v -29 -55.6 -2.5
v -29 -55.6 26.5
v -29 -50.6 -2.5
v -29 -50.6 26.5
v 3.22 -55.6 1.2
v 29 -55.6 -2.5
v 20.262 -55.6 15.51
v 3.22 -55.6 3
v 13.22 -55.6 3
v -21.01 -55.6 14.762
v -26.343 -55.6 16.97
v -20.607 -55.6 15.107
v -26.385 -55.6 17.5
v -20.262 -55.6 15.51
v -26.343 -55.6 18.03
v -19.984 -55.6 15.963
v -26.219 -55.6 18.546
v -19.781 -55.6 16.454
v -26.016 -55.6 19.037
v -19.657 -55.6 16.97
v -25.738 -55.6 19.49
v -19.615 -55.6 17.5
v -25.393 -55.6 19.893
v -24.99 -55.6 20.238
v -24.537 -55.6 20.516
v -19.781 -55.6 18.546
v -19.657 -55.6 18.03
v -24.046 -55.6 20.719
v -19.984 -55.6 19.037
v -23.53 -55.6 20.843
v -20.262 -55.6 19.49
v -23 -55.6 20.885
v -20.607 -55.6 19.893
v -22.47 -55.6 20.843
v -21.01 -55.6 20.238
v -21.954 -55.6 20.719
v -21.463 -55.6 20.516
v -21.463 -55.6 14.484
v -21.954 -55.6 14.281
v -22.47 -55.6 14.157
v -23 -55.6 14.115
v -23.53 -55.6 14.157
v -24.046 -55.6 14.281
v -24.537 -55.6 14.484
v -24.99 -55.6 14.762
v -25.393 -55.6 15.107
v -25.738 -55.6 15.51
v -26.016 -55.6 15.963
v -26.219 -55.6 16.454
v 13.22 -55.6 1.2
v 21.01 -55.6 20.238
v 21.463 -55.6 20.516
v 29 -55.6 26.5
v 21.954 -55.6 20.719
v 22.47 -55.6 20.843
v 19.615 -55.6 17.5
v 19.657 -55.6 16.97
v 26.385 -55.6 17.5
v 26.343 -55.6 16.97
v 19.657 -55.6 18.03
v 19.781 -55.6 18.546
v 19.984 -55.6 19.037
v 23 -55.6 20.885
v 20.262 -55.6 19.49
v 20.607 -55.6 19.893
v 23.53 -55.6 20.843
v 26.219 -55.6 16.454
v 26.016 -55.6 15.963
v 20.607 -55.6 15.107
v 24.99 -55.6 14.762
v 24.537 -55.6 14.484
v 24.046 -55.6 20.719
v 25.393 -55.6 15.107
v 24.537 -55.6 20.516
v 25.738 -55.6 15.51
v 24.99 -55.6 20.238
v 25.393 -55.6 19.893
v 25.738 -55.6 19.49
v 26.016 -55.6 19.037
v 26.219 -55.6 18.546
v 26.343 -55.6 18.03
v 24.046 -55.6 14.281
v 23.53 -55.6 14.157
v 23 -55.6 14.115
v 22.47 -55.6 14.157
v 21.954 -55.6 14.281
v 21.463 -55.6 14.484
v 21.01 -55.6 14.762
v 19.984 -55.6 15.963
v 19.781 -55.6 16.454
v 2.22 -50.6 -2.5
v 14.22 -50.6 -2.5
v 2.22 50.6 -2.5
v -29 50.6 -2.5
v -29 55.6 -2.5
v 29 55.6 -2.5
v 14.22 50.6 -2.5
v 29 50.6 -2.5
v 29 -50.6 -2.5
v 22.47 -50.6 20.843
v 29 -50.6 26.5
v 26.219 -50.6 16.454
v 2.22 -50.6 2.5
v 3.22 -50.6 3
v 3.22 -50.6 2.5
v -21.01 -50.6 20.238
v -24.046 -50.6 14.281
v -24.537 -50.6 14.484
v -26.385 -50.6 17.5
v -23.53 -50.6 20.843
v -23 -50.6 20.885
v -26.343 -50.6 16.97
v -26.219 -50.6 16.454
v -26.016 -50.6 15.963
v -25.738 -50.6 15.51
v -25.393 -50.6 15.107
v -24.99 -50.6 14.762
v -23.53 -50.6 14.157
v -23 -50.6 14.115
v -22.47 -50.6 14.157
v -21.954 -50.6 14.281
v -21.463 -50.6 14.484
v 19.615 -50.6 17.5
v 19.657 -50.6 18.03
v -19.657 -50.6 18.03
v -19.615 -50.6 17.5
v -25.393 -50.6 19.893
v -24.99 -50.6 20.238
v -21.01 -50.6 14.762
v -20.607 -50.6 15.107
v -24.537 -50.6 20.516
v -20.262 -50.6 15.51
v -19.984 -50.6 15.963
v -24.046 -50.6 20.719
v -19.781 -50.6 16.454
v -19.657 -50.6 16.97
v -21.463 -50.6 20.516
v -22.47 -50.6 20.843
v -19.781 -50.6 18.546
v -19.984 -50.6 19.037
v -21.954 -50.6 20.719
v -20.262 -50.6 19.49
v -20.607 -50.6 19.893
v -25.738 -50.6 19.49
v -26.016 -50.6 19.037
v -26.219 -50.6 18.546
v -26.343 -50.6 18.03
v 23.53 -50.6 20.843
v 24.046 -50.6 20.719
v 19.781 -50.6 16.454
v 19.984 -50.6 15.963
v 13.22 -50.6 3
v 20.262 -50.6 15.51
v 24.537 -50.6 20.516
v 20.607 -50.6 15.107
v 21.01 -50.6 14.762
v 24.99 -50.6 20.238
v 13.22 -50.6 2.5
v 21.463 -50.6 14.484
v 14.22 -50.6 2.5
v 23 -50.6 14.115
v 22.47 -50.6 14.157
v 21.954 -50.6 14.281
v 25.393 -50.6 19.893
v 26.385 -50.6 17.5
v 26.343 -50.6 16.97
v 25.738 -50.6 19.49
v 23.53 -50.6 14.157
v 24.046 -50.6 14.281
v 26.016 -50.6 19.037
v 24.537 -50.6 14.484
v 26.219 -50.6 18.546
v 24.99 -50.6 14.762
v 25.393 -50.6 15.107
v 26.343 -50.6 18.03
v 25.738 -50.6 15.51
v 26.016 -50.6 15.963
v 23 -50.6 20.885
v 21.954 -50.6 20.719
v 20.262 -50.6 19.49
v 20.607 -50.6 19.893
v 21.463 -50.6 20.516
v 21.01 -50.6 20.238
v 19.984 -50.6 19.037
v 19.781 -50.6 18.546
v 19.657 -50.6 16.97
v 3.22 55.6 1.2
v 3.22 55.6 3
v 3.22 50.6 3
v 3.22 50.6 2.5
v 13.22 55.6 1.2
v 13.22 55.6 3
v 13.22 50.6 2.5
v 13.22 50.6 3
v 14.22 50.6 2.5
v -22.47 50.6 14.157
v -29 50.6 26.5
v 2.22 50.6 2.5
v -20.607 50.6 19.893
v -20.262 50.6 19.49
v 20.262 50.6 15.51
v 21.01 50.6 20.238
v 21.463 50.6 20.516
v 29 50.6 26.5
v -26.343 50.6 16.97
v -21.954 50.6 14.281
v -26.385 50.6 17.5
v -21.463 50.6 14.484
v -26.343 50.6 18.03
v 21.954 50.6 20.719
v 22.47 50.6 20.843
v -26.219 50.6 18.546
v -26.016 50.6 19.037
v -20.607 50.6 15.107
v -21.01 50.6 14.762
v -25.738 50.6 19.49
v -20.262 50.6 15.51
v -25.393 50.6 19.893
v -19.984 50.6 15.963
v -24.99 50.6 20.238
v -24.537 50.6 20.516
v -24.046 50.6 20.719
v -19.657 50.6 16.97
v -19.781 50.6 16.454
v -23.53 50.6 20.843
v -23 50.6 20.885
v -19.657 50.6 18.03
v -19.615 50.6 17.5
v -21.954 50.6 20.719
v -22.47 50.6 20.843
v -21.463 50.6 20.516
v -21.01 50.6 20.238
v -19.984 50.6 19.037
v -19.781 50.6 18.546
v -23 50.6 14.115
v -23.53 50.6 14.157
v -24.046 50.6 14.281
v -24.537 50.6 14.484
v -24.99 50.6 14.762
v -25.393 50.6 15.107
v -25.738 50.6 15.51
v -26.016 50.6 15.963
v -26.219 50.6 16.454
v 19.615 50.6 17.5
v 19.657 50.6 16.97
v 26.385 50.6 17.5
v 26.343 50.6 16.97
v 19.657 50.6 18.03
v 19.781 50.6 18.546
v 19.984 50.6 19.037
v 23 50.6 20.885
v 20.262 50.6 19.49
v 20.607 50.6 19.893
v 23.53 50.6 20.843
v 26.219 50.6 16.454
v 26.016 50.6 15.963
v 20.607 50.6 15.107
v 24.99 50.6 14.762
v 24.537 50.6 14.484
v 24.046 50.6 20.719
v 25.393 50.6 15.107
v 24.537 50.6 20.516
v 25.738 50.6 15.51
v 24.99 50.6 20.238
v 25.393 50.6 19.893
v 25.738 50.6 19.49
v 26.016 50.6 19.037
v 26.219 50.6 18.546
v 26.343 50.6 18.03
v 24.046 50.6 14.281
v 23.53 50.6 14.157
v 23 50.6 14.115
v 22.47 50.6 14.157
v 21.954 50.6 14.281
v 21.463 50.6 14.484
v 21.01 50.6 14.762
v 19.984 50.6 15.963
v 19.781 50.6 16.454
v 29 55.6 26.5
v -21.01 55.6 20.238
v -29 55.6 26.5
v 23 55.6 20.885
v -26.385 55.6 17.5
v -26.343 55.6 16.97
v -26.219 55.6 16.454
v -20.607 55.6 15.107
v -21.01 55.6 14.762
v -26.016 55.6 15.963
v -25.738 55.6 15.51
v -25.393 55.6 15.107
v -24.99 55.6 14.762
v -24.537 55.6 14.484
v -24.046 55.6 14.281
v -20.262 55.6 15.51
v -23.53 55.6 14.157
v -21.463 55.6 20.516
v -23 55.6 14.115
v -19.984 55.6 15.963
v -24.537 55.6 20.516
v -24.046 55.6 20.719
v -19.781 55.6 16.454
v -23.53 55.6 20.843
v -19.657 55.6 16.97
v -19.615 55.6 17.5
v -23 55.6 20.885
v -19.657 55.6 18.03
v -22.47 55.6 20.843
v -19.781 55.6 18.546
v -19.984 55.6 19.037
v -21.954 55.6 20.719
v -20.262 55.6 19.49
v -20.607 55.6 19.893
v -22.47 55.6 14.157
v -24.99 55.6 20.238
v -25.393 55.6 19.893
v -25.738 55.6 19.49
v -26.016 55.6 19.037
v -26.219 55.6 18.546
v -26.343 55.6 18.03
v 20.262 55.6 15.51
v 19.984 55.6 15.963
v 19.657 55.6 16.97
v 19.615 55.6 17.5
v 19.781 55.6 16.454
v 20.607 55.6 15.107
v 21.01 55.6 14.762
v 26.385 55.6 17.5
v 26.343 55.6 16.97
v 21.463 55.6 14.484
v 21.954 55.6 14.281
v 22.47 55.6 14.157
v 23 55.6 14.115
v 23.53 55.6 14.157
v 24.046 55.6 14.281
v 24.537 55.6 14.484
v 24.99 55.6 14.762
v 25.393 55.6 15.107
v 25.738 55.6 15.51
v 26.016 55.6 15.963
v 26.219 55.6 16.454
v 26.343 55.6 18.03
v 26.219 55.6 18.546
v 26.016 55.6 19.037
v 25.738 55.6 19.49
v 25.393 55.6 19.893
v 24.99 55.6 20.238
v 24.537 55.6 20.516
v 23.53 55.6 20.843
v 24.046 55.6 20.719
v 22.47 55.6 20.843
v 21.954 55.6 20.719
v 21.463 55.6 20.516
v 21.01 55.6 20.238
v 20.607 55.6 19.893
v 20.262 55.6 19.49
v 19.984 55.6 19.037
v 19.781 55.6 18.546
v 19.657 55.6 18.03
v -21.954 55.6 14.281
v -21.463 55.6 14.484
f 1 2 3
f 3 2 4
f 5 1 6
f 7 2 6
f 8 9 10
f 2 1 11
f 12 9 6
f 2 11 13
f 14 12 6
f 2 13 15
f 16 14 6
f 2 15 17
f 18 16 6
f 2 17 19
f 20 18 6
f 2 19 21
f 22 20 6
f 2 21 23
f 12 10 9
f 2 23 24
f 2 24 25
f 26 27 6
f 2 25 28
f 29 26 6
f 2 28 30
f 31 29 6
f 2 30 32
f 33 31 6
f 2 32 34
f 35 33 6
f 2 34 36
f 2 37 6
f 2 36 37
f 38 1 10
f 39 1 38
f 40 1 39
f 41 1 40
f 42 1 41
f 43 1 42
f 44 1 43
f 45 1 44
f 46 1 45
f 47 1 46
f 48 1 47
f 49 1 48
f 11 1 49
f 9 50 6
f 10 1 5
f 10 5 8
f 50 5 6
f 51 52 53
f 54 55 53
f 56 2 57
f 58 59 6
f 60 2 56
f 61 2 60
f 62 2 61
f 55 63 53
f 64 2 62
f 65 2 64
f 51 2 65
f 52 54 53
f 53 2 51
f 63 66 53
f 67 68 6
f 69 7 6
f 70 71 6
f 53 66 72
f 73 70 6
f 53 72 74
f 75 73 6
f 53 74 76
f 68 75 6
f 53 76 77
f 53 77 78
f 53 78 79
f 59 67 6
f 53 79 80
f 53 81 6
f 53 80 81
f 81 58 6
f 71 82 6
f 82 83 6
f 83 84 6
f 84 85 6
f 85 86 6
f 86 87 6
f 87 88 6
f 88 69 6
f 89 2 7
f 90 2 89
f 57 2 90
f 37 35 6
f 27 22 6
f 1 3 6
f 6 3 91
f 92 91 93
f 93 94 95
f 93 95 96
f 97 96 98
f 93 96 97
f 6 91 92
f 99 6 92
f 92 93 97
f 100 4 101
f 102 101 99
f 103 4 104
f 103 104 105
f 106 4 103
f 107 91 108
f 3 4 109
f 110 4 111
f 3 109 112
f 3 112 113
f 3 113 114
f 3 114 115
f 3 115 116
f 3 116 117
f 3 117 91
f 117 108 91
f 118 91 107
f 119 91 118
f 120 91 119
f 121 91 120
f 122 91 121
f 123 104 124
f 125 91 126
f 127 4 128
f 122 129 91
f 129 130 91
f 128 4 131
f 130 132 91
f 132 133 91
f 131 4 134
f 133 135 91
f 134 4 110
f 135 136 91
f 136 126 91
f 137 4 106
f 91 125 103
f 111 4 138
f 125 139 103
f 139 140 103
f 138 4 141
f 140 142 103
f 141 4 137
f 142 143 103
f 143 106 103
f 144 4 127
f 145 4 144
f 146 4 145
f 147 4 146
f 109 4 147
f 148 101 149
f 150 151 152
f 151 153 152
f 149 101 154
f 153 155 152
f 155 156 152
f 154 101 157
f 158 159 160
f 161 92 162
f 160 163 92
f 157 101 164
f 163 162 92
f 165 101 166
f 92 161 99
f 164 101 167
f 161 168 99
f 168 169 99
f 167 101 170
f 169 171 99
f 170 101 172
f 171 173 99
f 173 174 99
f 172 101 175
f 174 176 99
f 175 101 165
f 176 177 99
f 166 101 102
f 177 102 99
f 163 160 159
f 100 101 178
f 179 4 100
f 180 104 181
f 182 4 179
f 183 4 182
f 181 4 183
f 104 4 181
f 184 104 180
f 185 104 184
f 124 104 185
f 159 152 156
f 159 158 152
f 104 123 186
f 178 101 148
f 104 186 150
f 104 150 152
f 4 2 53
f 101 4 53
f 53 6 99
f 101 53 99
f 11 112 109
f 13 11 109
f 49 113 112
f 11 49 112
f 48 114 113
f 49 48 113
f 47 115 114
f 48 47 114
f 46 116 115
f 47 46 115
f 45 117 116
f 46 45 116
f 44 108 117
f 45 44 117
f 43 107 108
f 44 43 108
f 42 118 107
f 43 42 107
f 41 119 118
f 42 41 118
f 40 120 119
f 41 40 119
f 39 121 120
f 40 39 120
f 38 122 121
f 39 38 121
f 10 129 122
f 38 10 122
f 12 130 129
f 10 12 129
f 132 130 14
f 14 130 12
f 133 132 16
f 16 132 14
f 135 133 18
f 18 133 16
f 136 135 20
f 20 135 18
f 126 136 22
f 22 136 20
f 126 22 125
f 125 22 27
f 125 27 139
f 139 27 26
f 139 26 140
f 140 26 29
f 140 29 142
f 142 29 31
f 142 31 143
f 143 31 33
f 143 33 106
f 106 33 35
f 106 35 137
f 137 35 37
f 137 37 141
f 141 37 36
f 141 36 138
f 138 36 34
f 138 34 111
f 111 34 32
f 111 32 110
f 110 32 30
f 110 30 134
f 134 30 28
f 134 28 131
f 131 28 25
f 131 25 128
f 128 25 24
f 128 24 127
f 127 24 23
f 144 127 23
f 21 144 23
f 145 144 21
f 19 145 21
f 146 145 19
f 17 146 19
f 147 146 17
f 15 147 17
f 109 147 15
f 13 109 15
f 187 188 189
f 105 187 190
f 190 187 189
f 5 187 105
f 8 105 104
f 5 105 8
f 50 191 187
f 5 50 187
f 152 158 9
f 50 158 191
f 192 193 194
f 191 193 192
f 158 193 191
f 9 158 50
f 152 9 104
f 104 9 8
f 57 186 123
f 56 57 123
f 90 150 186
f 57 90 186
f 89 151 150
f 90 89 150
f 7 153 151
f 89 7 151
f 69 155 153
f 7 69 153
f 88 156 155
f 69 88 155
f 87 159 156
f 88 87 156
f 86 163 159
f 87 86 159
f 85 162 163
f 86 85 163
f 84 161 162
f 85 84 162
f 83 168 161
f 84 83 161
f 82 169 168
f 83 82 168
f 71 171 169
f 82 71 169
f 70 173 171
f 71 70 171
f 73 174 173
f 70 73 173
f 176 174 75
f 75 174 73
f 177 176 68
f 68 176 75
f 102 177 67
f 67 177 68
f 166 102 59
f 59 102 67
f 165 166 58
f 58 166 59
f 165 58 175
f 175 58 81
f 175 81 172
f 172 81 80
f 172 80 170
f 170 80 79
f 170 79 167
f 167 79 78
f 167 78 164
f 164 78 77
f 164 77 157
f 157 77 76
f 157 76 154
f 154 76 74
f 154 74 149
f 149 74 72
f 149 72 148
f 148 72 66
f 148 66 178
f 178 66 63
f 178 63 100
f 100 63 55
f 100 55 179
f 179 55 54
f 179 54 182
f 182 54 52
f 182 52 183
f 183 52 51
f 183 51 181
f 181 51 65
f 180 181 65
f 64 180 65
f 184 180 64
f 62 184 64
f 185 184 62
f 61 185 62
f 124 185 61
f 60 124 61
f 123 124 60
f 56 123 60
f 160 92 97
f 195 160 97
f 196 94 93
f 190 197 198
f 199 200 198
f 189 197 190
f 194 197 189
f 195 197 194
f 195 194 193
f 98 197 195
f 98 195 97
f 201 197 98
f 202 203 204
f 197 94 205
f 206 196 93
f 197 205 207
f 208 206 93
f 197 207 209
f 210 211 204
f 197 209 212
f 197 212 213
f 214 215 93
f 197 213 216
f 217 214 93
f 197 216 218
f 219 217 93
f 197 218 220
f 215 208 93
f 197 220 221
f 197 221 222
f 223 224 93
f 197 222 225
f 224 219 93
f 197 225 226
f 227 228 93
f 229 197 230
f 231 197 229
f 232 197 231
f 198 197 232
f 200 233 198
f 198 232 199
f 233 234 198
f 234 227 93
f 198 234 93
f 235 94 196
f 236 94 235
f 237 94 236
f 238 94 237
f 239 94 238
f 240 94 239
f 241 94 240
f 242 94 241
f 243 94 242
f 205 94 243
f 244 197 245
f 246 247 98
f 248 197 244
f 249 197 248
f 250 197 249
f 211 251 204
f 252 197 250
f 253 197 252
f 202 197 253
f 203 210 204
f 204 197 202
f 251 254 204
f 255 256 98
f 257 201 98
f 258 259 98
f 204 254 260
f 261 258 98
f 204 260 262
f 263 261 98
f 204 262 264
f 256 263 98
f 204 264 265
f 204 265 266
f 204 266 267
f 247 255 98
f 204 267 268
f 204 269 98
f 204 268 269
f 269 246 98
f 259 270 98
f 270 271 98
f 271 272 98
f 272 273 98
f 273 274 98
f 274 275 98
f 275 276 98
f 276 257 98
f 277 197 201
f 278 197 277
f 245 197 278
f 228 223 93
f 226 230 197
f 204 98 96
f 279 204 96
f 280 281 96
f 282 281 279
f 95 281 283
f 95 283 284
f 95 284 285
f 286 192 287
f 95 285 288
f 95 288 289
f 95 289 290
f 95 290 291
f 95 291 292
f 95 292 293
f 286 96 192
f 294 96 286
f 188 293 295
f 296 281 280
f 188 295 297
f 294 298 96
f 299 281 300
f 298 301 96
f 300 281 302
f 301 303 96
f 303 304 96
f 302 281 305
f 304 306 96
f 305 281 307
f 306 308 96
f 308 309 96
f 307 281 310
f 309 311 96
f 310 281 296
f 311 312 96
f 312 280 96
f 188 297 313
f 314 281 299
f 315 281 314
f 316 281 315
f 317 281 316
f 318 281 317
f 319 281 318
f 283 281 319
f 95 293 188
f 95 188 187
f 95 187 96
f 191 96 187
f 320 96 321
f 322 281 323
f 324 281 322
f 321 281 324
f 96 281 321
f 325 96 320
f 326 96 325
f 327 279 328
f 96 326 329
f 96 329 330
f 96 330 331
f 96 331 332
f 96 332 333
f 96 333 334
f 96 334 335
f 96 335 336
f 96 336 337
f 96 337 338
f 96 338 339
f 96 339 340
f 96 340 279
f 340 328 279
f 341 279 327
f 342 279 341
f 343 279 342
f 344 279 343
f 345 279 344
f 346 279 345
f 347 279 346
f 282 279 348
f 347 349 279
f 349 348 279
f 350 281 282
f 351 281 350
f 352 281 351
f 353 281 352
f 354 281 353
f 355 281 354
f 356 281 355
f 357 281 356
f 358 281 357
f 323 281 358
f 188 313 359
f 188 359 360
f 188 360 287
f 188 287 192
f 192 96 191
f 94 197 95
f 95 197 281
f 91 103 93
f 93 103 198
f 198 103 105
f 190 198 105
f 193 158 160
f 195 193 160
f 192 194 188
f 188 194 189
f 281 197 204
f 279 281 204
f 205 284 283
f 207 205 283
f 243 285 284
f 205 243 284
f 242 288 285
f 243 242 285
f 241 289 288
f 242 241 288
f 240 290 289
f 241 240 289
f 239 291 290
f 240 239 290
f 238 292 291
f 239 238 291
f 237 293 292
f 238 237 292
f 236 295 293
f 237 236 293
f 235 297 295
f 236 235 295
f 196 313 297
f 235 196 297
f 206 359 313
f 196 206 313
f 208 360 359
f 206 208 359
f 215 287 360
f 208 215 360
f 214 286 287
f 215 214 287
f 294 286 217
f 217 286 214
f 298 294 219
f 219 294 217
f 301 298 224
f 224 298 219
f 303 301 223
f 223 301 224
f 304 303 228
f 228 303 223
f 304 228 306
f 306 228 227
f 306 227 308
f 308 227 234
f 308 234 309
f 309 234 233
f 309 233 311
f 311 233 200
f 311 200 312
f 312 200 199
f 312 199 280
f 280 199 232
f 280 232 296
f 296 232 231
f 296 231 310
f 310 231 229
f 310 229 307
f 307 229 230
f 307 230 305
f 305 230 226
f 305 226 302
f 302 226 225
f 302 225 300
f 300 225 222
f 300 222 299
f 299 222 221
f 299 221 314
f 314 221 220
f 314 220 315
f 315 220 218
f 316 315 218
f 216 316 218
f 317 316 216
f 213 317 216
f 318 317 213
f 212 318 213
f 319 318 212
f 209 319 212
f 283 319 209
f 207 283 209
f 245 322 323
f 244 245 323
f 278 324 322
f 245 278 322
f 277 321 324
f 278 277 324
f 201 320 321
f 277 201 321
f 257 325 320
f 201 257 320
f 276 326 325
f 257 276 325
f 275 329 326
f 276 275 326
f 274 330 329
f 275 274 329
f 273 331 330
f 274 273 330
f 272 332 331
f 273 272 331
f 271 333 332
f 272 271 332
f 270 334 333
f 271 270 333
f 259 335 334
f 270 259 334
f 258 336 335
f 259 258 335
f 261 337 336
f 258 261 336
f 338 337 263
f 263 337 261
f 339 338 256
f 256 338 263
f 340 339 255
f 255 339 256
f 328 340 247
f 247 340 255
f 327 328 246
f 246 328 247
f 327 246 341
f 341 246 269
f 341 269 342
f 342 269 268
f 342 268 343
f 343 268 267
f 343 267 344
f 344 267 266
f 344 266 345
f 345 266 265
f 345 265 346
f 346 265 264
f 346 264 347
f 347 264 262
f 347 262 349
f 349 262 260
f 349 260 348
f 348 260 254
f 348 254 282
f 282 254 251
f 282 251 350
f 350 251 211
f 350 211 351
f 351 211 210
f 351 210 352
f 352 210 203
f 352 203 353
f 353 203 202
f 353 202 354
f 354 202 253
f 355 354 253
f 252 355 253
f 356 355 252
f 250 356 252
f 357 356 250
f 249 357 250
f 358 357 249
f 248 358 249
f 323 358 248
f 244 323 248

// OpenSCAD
// file: myLibs.scad
pi= 3.14159265359;

module hole(diam, height, clearance= 0.1)
{
        fn= round(diam * pi / 0.5);
        cylinder(h= height, r=diam / 2 / cos(180 / fn) + clearance, $fn=fn);
}

module nutTrap(ffd, faces=6, height=1)
{
	cylinder(h= height, r=ffd / cos(180 / faces) / 2 + 0.05, $fn=faces);
}

// A slot which has rounded ends, but total length is l
module slot(d= 4, l= 8, ht= 1, clearance=0.1) {
	fn= round(d * pi / 0.5);
	rd= d / 2 / cos(180 / fn) + clearance;
	d1= rd*2;
	union() {
		translate([0,0,ht/2]) cube([l-d1, d1, ht], center=true);
		translate([-(l-d1)/2, 0, ht/2]) cylinder(h=ht, r=rd, $fn=fn, center=true); 
		translate([(l-d1)/2, 0, ht/2]) cylinder(h=ht, r=rd, $fn=fn, center=true); 
	}
	
}

/**
 * Standard right-angled triangle
 *
 * @param number o_len Lenght of the opposite side
 * @param number a_len Lenght of the adjacent side
 * @param number depth How wide/deep the triangle is in the 3rd dimension
 * @todo a better way ?
 */
module triangle(o_len, a_len, depth)
{
    linear_extrude(height=depth)
    {
        polygon(points=[[0,0],[a_len,0],[0,o_len]], paths=[[0,1,2]]);
    }
}
// main file
use <myLibs.scad>

mm= 25.4;
mst= 1.8; // thickness of magnetic strip
msw= 10; // width of magnetic strip
carriage_length= 30;
rail_length= 3*mm + carriage_length;
rail_width= 20;
rail_depth= 5;
rail_dia= 1/4*mm;
rail_height= 35;
pcb_width= 35.4;
sep= rail_width/2 + 13;
end_width= 58;
offset= 10-5+2.2+1.02;

//rotate([90, 0, 0])
difference() {
	union() {
		%translate([0, 0, rail_height/2-3])  carriage();
		rail();
	}
	#translate([sep, rail_length/2+6, rail_height/2]) rotate([90, 0, 0]) hole(rail_dia, rail_length+10, 0.2);
	#translate([-sep, rail_length/2+6, rail_height/2]) rotate([90, 0, 0]) hole(rail_dia, rail_length+10, 0.2);
}

module board(ht) {
	chipoffset= 9.4;
	translate([-pcb_width-0.4, -30-1.7,ht])  import("magnetic-linear-encoder.dxf");
	// chip
	translate([chipoffset-4.4/2, 0, ht-0.9])  cube(size=[4.4,6.5,2.71], center=true);
	// socket
	translate([-pcb_width/2+8, 0, ht+3.0])  cube(size=[6,7,5], center=true);
}

module carriage() {
	l= carriage_length;
	w= pcb_width;
	h= 3;
	cw= end_width;

	%board(-9.3 + 0.4); // <= 0.4mm above strip
	difference() {
		union() {
	    	cube(size=[cw, l, h], center=true);
	    	translate([-cw/2, -l/2, 0])  cube(size=[rail_dia+6, l, 8], center=false);
	    	translate([cw/2-(rail_dia+6), -l/2, 0])  cube(size=[rail_dia+6, l, 8], center=false);
	    }
	    #translate([-w/2+3.5, -l/2+3.5, -7])  hole(3, 10);
	    translate([w/2-3.5, -l/2+3.5, -7])   hole(3, 10);
	    translate([-w/2+3.5, l/2-3.5, -7])   hole(3, 10);
	    translate([w/2-3.5, l/2-3.5, -7])    hole(3, 10);
	}
}

module rail() {
	l= rail_length;
	w= rail_width-8;
	t= rail_depth;

	difference() {
		union() {
			translate([offset, 0, 0]) cube(size=[w, l, t], center=true);
			slides();
		}
		#translate([offset, 0, t/2-mst/4+0.05])  cube(size=[msw, l+10, mst], center=true);
	}
}

module slides() {
	l= rail_length;
	w= end_width;
	t= 5;
	h= rail_height-6;
	translate([0, l/2, h/2-rail_depth/2])  cube(size=[w, t, h], center=true);
	translate([0, -l/2, h/2-rail_depth/2])  cube(size=[w, t, h], center=true);
}
